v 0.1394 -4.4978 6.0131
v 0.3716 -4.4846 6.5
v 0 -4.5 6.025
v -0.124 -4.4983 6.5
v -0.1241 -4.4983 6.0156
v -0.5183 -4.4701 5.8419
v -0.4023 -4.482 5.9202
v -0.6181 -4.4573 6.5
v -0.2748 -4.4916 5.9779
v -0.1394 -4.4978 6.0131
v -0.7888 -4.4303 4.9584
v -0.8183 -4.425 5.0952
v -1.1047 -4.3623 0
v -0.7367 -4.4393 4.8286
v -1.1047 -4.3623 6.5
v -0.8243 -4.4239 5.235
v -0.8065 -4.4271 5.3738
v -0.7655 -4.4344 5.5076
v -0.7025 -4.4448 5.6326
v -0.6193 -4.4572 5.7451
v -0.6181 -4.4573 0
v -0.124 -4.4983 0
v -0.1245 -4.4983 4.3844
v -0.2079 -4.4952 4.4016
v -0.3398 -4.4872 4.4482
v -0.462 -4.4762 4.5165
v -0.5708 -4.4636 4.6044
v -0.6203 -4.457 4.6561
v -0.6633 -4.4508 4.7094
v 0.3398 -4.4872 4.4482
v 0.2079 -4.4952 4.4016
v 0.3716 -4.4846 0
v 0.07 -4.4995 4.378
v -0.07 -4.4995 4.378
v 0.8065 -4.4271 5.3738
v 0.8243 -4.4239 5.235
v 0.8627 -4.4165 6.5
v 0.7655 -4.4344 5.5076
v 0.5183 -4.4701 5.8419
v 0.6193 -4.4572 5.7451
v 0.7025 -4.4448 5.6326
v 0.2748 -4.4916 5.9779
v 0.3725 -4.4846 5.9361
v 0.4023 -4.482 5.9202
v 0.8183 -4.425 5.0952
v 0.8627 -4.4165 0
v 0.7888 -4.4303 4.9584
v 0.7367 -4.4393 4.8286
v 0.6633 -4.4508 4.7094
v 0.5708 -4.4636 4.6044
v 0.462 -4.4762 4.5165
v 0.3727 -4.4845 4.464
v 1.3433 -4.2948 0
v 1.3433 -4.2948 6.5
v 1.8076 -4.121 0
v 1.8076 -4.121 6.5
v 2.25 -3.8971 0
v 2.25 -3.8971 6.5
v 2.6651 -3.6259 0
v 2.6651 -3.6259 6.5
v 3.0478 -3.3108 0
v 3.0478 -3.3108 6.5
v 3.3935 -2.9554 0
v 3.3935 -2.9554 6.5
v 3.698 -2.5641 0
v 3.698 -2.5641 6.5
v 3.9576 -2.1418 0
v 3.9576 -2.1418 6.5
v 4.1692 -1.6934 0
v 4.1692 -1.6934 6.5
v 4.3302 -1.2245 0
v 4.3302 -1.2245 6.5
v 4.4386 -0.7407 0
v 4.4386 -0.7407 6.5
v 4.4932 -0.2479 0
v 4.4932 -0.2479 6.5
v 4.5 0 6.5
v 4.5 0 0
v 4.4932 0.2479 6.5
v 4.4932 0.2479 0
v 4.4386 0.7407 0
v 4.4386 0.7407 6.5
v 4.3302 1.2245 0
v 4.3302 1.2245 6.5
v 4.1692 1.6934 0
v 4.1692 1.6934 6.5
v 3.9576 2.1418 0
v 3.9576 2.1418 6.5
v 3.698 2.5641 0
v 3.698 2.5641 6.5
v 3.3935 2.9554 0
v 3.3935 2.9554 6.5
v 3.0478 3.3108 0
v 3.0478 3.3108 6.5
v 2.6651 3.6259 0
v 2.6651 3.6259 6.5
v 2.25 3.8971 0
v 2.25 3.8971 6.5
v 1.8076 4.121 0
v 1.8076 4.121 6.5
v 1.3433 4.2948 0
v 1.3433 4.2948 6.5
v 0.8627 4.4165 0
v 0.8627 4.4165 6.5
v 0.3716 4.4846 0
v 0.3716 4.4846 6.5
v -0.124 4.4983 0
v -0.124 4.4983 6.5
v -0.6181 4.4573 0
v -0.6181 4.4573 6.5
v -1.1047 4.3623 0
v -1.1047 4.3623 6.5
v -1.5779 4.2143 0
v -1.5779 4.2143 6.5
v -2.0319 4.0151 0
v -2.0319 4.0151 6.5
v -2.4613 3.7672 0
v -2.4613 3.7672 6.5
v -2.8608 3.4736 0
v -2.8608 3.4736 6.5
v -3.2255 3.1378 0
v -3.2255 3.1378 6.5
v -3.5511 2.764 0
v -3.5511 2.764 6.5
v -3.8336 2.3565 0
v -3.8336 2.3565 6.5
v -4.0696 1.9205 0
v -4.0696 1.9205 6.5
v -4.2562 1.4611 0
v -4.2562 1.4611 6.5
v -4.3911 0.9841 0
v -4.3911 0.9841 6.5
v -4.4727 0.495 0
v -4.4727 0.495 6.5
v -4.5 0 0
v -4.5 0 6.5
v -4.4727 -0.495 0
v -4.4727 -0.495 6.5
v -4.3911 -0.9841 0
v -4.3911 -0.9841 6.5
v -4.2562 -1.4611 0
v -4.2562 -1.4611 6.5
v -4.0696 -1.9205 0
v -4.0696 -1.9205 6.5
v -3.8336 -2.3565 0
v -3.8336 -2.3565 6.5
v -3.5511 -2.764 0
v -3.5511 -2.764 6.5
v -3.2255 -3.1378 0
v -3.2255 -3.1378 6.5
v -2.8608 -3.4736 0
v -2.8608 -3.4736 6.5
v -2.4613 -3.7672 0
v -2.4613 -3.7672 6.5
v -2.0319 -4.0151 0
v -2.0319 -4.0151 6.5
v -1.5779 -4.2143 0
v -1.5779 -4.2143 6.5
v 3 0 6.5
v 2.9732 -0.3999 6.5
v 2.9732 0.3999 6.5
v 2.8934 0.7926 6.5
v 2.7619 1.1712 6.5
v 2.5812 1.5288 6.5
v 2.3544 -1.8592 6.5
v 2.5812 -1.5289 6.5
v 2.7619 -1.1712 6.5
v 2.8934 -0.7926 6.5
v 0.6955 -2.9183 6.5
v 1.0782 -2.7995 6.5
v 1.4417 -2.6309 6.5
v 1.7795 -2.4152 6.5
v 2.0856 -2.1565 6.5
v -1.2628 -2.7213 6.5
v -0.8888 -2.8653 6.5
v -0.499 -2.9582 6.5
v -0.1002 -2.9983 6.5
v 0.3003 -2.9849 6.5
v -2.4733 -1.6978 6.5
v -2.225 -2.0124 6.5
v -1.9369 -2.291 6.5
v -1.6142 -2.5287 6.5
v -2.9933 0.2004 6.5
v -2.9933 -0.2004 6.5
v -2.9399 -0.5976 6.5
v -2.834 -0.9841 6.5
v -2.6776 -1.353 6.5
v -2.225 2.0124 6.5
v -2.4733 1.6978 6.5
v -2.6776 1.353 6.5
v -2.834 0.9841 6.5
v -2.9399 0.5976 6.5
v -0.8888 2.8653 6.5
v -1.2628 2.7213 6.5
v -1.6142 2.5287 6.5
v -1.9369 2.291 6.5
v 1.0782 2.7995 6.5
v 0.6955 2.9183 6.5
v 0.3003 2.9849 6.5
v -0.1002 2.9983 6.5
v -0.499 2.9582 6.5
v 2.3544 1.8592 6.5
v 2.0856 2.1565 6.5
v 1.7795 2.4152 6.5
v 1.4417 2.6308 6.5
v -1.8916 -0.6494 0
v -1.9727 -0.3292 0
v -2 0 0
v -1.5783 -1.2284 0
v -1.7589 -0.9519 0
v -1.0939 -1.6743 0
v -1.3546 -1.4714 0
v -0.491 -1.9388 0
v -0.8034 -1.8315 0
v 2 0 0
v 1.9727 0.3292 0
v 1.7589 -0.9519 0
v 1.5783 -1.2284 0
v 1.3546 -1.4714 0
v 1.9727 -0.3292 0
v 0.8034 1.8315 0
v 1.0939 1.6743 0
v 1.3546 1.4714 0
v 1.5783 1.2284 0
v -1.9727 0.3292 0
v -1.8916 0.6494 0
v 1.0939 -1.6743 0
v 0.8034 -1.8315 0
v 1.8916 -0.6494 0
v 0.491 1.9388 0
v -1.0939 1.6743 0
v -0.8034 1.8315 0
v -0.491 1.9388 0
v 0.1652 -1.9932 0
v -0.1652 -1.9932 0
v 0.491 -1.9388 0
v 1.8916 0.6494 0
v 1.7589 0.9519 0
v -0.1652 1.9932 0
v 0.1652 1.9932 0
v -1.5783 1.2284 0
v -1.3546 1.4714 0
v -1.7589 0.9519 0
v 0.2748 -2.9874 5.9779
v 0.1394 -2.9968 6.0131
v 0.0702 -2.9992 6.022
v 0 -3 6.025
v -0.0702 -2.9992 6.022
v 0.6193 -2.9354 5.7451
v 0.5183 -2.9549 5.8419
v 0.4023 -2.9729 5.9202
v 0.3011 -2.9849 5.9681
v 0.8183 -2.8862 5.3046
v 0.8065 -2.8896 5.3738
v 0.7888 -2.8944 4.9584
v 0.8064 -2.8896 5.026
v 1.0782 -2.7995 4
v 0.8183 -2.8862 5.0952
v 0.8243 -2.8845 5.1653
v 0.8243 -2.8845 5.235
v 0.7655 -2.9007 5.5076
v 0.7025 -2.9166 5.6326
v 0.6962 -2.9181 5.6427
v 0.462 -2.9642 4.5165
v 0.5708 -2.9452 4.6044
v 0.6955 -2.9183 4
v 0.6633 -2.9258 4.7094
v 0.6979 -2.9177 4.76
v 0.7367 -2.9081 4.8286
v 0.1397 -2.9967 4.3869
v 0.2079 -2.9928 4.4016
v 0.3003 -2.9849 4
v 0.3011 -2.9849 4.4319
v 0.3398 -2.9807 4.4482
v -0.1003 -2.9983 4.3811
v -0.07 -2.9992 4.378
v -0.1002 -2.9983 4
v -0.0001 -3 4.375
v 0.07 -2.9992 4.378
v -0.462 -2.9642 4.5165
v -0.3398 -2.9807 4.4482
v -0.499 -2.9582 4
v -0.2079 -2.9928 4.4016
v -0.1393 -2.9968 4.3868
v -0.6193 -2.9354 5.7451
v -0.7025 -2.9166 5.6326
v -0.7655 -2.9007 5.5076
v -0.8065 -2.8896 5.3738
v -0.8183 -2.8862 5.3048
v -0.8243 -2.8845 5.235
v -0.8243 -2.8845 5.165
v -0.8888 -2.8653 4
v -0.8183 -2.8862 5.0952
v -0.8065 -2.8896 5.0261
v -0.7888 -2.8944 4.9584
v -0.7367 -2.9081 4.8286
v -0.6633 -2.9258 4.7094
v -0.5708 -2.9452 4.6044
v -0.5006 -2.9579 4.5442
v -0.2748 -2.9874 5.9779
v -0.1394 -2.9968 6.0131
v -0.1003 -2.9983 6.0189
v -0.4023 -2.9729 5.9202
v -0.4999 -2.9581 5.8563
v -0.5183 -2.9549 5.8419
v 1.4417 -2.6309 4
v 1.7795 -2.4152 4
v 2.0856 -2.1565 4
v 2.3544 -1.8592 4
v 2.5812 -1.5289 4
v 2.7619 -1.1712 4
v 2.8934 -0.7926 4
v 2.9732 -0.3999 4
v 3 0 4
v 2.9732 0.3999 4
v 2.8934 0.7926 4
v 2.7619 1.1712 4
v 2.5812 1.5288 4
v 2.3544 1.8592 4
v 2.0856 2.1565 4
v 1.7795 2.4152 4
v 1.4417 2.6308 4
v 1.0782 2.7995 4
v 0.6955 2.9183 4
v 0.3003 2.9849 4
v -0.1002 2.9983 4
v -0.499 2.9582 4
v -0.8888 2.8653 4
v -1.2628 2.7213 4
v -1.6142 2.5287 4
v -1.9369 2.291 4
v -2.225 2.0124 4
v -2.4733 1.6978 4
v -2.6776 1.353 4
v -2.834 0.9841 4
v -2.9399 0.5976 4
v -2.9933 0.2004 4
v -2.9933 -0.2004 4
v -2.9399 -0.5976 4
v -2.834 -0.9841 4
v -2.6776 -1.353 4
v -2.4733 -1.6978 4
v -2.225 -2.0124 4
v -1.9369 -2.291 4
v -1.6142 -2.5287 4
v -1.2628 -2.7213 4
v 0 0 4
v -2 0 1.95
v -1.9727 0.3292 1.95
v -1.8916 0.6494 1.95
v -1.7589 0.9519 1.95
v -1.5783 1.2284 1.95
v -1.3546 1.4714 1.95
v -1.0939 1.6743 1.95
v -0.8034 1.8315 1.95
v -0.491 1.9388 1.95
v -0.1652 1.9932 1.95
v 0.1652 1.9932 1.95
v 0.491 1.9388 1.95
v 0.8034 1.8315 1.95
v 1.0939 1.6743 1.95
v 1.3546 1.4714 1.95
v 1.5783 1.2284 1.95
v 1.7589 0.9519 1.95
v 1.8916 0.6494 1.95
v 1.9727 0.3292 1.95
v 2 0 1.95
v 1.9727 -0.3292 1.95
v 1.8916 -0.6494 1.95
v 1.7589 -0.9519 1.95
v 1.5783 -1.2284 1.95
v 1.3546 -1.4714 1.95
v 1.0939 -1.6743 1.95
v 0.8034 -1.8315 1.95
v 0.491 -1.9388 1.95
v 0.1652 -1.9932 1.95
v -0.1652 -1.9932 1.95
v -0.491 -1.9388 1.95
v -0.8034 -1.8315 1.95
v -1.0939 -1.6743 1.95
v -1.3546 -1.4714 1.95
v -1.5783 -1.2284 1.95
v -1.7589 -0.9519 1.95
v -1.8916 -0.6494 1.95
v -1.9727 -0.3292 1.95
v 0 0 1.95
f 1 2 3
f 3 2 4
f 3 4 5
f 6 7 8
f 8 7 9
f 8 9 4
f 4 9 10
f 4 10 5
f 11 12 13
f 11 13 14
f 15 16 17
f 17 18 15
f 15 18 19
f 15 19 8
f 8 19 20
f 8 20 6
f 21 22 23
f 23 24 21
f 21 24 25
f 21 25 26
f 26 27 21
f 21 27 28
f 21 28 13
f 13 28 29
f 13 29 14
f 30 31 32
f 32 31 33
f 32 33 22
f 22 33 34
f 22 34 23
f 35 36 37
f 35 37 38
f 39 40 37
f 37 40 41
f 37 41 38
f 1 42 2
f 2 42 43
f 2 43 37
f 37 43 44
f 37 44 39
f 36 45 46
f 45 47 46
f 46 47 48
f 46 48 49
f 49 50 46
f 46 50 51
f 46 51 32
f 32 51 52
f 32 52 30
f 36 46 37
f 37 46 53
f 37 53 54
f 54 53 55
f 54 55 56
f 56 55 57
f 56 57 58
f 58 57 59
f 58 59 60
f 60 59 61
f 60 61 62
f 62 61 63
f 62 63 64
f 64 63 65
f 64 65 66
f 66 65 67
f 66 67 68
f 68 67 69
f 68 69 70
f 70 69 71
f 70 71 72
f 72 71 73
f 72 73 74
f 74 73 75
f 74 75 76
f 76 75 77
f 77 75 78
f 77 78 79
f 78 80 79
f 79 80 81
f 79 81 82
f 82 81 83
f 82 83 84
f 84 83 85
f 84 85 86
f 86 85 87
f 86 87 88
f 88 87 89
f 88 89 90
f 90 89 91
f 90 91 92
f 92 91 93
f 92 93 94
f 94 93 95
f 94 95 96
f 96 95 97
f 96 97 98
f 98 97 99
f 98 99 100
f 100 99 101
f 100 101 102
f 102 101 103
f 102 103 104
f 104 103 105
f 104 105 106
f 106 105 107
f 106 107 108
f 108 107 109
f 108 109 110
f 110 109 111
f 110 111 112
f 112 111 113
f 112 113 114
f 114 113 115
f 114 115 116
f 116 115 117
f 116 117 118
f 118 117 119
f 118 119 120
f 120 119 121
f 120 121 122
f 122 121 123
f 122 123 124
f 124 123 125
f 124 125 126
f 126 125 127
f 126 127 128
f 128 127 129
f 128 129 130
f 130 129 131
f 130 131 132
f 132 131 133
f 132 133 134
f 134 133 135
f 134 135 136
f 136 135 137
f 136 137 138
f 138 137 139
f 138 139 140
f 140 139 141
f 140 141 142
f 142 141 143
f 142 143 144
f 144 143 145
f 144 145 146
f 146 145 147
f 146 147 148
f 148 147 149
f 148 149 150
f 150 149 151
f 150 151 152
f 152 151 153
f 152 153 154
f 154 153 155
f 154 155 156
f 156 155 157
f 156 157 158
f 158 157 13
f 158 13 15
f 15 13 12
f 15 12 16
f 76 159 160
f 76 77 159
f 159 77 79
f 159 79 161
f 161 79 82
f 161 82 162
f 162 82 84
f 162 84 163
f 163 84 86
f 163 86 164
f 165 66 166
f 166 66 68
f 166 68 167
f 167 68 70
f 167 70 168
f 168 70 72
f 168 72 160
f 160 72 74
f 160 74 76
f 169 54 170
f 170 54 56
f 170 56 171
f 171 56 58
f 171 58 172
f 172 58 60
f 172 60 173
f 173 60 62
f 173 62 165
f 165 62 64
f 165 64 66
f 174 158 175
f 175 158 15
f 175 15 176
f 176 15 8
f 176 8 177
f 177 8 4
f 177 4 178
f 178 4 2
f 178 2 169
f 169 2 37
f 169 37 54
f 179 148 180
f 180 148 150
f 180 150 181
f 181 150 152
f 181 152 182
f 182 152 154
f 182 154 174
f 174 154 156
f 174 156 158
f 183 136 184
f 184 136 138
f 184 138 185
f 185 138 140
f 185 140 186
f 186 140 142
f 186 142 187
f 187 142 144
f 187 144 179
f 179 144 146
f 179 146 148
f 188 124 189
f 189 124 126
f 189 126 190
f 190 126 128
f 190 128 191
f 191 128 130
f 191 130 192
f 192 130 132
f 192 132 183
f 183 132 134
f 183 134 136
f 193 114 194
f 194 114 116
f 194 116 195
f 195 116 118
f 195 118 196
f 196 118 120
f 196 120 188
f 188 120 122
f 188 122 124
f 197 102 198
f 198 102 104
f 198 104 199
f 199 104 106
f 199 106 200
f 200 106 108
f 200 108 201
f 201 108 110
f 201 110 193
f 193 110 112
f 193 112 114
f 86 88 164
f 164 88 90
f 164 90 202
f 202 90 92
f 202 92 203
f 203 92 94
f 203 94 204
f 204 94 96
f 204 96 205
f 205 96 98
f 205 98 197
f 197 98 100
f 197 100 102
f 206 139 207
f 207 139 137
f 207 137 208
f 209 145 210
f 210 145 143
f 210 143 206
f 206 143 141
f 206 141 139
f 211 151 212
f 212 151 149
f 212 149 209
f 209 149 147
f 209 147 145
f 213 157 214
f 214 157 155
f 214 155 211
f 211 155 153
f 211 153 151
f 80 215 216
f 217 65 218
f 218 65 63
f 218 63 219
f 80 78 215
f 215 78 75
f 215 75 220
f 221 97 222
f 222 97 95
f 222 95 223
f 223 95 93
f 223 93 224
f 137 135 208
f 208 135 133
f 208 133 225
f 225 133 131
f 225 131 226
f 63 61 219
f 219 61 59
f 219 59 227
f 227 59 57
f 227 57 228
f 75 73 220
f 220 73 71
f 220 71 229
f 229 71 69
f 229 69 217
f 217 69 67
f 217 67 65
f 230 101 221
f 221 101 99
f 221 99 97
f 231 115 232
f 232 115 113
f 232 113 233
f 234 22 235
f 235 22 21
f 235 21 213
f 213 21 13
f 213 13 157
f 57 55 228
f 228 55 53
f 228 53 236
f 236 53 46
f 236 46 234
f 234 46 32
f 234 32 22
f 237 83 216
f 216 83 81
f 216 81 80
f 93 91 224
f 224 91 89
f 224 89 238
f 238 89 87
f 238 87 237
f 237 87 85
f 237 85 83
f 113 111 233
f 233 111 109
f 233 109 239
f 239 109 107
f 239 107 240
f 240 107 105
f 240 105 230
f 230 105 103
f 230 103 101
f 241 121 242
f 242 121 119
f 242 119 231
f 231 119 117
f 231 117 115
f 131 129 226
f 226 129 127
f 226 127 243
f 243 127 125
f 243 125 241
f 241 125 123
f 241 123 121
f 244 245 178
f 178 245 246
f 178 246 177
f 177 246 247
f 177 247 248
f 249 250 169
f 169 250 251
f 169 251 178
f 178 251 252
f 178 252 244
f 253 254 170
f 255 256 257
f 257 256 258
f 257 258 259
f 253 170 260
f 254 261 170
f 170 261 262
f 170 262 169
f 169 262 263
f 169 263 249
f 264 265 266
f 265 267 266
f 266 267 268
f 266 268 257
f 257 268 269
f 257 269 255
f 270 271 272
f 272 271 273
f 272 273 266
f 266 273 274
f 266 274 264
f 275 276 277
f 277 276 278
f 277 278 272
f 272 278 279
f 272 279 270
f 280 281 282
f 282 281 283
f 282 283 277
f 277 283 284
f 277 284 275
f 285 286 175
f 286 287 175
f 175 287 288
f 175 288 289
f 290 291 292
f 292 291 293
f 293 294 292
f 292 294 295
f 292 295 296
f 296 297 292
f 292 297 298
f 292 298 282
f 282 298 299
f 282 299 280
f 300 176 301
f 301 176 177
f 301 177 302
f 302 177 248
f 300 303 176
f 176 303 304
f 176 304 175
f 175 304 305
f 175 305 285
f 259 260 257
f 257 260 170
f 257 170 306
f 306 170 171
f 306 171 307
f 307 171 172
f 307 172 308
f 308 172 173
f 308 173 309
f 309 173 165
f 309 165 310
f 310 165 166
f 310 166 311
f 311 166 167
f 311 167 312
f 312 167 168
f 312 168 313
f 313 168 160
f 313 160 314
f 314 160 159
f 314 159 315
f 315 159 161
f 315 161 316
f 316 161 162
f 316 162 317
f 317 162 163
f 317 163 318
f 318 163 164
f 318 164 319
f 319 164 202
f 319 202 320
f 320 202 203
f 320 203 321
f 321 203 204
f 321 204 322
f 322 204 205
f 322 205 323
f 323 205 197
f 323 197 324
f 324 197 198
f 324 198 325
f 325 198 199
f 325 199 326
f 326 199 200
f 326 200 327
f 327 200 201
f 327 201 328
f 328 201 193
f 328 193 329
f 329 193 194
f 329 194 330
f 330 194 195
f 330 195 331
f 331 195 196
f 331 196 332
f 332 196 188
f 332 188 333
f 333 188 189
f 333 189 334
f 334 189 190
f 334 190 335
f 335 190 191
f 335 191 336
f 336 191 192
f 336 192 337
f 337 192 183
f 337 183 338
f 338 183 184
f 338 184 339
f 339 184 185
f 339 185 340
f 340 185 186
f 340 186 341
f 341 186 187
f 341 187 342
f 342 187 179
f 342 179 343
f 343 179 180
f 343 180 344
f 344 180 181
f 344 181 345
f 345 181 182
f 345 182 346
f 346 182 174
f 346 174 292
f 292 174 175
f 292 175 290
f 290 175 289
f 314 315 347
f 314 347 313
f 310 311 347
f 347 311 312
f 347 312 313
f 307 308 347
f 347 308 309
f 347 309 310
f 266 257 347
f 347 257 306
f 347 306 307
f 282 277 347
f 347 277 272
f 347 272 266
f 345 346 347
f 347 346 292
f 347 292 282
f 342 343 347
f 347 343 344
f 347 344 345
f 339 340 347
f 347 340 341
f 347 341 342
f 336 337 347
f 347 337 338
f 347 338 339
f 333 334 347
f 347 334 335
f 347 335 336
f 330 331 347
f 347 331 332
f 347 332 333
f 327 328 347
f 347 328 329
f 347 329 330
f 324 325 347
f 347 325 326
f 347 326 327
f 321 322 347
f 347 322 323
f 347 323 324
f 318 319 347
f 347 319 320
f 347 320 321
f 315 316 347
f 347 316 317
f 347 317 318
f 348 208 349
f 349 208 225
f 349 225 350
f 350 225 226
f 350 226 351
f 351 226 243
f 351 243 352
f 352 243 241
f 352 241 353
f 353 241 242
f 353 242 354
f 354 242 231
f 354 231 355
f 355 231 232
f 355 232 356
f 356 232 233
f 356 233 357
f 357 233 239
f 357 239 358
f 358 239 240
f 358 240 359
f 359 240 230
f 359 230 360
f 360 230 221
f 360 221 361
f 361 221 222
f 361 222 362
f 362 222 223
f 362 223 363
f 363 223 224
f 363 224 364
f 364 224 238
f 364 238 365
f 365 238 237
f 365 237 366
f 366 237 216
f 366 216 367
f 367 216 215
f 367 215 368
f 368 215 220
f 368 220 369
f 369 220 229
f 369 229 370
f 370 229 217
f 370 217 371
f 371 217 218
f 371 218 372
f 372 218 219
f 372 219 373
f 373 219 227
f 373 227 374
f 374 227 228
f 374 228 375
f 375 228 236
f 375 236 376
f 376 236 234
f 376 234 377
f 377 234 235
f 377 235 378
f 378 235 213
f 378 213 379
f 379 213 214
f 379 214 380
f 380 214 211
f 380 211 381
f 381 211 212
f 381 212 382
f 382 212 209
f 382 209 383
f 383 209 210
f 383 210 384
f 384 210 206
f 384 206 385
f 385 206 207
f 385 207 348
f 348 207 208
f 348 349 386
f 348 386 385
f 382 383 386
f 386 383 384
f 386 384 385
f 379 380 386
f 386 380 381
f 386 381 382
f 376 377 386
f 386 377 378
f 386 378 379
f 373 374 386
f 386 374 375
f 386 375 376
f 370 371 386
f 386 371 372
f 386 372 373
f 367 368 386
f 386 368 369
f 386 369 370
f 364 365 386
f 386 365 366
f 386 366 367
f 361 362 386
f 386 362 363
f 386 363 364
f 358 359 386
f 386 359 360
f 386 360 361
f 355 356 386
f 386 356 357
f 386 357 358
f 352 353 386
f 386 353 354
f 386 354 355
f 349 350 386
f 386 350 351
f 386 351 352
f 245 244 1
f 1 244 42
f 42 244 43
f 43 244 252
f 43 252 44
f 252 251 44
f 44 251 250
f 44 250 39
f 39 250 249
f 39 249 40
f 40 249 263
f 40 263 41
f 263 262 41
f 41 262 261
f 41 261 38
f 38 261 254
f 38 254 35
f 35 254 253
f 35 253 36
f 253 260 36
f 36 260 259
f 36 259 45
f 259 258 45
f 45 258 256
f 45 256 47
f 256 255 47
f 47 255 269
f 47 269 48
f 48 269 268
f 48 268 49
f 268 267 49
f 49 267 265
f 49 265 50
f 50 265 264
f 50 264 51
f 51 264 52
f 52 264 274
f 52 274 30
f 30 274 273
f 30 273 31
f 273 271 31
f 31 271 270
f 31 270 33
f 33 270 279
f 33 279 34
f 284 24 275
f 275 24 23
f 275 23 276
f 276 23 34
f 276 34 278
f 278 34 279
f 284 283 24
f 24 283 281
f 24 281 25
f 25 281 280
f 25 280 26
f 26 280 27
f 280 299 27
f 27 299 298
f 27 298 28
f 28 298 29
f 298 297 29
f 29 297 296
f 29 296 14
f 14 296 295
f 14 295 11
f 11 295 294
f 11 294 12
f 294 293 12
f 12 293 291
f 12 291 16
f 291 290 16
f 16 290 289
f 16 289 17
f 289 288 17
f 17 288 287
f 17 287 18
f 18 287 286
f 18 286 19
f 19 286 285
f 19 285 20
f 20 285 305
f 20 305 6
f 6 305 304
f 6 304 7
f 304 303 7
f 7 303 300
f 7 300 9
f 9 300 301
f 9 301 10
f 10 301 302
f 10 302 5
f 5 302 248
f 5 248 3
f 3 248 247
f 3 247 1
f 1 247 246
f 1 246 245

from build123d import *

# Parameters (mm, degrees)
SKETCH3_R               = 4.5
BOSS_EXTRUDE3_DEPTH     = 6.5
SKETCH4_R               = 3
CUT_EXTRUDE1_DEPTH      = 2.5
SKETCH5_R               = 2
CUT_EXTRUDE2_DEPTH      = 1.95
CUT_EXTRUDE3_REACH      = 11.097
CUT_EXTRUDE3_END_RADIUS = 4.5
SKETCH7_R               = 0.825


with BuildPart() as part:
    # Sketch3 → Boss-Extrude3 (new body)
    with BuildSketch(Plane.XY):
        with Locations(Location((0, 0, 0), (0, 0, 180))):
            Circle(SKETCH3_R)
    extrude(amount=BOSS_EXTRUDE3_DEPTH)

    # Sketch4 → Cut-Extrude1 (cut)
    with BuildSketch(Plane.XY.offset(6.5)):
        Circle(SKETCH4_R)
    extrude(amount=-CUT_EXTRUDE1_DEPTH, mode=Mode.SUBTRACT)

    # Sketch5 → Cut-Extrude2 (cut)
    with BuildSketch(Plane(origin=(0, 0, 0), x_dir=(-1, 0, 0), z_dir=(0, 0, -1))):
        Circle(SKETCH5_R)
    extrude(amount=-CUT_EXTRUDE2_DEPTH, mode=Mode.SUBTRACT)

    # Cut-Extrude3: up to this cylinder (the profile starts inside it)
    cut_extrude3_end = Plane(origin=(0, 0, 5.2), z_dir=(0, 0, -1)) * Cylinder(CUT_EXTRUDE3_END_RADIUS, 32.194, mode=Mode.PRIVATE)
    # Sketch7 → Cut-Extrude3 (cut, up to the surface)
    with BuildSketch(Plane(origin=(0, 0, 0), x_dir=(1, 0, 0), z_dir=(0, 1, 0)), mode=Mode.PRIVATE) as cut_extrude3_sk1:
        with Locations(Location((0, -5.2, 0), (0, 0, 270))):
            Circle(SKETCH7_R)
    cut_extrude3_tool1 = extrude(cut_extrude3_sk1.sketch, amount=-CUT_EXTRUDE3_REACH, mode=Mode.PRIVATE) & cut_extrude3_end
    add(cut_extrude3_tool1.solids().sort_by_distance((0, 0, 5.2))[0], mode=Mode.SUBTRACT)


solid = part.part
